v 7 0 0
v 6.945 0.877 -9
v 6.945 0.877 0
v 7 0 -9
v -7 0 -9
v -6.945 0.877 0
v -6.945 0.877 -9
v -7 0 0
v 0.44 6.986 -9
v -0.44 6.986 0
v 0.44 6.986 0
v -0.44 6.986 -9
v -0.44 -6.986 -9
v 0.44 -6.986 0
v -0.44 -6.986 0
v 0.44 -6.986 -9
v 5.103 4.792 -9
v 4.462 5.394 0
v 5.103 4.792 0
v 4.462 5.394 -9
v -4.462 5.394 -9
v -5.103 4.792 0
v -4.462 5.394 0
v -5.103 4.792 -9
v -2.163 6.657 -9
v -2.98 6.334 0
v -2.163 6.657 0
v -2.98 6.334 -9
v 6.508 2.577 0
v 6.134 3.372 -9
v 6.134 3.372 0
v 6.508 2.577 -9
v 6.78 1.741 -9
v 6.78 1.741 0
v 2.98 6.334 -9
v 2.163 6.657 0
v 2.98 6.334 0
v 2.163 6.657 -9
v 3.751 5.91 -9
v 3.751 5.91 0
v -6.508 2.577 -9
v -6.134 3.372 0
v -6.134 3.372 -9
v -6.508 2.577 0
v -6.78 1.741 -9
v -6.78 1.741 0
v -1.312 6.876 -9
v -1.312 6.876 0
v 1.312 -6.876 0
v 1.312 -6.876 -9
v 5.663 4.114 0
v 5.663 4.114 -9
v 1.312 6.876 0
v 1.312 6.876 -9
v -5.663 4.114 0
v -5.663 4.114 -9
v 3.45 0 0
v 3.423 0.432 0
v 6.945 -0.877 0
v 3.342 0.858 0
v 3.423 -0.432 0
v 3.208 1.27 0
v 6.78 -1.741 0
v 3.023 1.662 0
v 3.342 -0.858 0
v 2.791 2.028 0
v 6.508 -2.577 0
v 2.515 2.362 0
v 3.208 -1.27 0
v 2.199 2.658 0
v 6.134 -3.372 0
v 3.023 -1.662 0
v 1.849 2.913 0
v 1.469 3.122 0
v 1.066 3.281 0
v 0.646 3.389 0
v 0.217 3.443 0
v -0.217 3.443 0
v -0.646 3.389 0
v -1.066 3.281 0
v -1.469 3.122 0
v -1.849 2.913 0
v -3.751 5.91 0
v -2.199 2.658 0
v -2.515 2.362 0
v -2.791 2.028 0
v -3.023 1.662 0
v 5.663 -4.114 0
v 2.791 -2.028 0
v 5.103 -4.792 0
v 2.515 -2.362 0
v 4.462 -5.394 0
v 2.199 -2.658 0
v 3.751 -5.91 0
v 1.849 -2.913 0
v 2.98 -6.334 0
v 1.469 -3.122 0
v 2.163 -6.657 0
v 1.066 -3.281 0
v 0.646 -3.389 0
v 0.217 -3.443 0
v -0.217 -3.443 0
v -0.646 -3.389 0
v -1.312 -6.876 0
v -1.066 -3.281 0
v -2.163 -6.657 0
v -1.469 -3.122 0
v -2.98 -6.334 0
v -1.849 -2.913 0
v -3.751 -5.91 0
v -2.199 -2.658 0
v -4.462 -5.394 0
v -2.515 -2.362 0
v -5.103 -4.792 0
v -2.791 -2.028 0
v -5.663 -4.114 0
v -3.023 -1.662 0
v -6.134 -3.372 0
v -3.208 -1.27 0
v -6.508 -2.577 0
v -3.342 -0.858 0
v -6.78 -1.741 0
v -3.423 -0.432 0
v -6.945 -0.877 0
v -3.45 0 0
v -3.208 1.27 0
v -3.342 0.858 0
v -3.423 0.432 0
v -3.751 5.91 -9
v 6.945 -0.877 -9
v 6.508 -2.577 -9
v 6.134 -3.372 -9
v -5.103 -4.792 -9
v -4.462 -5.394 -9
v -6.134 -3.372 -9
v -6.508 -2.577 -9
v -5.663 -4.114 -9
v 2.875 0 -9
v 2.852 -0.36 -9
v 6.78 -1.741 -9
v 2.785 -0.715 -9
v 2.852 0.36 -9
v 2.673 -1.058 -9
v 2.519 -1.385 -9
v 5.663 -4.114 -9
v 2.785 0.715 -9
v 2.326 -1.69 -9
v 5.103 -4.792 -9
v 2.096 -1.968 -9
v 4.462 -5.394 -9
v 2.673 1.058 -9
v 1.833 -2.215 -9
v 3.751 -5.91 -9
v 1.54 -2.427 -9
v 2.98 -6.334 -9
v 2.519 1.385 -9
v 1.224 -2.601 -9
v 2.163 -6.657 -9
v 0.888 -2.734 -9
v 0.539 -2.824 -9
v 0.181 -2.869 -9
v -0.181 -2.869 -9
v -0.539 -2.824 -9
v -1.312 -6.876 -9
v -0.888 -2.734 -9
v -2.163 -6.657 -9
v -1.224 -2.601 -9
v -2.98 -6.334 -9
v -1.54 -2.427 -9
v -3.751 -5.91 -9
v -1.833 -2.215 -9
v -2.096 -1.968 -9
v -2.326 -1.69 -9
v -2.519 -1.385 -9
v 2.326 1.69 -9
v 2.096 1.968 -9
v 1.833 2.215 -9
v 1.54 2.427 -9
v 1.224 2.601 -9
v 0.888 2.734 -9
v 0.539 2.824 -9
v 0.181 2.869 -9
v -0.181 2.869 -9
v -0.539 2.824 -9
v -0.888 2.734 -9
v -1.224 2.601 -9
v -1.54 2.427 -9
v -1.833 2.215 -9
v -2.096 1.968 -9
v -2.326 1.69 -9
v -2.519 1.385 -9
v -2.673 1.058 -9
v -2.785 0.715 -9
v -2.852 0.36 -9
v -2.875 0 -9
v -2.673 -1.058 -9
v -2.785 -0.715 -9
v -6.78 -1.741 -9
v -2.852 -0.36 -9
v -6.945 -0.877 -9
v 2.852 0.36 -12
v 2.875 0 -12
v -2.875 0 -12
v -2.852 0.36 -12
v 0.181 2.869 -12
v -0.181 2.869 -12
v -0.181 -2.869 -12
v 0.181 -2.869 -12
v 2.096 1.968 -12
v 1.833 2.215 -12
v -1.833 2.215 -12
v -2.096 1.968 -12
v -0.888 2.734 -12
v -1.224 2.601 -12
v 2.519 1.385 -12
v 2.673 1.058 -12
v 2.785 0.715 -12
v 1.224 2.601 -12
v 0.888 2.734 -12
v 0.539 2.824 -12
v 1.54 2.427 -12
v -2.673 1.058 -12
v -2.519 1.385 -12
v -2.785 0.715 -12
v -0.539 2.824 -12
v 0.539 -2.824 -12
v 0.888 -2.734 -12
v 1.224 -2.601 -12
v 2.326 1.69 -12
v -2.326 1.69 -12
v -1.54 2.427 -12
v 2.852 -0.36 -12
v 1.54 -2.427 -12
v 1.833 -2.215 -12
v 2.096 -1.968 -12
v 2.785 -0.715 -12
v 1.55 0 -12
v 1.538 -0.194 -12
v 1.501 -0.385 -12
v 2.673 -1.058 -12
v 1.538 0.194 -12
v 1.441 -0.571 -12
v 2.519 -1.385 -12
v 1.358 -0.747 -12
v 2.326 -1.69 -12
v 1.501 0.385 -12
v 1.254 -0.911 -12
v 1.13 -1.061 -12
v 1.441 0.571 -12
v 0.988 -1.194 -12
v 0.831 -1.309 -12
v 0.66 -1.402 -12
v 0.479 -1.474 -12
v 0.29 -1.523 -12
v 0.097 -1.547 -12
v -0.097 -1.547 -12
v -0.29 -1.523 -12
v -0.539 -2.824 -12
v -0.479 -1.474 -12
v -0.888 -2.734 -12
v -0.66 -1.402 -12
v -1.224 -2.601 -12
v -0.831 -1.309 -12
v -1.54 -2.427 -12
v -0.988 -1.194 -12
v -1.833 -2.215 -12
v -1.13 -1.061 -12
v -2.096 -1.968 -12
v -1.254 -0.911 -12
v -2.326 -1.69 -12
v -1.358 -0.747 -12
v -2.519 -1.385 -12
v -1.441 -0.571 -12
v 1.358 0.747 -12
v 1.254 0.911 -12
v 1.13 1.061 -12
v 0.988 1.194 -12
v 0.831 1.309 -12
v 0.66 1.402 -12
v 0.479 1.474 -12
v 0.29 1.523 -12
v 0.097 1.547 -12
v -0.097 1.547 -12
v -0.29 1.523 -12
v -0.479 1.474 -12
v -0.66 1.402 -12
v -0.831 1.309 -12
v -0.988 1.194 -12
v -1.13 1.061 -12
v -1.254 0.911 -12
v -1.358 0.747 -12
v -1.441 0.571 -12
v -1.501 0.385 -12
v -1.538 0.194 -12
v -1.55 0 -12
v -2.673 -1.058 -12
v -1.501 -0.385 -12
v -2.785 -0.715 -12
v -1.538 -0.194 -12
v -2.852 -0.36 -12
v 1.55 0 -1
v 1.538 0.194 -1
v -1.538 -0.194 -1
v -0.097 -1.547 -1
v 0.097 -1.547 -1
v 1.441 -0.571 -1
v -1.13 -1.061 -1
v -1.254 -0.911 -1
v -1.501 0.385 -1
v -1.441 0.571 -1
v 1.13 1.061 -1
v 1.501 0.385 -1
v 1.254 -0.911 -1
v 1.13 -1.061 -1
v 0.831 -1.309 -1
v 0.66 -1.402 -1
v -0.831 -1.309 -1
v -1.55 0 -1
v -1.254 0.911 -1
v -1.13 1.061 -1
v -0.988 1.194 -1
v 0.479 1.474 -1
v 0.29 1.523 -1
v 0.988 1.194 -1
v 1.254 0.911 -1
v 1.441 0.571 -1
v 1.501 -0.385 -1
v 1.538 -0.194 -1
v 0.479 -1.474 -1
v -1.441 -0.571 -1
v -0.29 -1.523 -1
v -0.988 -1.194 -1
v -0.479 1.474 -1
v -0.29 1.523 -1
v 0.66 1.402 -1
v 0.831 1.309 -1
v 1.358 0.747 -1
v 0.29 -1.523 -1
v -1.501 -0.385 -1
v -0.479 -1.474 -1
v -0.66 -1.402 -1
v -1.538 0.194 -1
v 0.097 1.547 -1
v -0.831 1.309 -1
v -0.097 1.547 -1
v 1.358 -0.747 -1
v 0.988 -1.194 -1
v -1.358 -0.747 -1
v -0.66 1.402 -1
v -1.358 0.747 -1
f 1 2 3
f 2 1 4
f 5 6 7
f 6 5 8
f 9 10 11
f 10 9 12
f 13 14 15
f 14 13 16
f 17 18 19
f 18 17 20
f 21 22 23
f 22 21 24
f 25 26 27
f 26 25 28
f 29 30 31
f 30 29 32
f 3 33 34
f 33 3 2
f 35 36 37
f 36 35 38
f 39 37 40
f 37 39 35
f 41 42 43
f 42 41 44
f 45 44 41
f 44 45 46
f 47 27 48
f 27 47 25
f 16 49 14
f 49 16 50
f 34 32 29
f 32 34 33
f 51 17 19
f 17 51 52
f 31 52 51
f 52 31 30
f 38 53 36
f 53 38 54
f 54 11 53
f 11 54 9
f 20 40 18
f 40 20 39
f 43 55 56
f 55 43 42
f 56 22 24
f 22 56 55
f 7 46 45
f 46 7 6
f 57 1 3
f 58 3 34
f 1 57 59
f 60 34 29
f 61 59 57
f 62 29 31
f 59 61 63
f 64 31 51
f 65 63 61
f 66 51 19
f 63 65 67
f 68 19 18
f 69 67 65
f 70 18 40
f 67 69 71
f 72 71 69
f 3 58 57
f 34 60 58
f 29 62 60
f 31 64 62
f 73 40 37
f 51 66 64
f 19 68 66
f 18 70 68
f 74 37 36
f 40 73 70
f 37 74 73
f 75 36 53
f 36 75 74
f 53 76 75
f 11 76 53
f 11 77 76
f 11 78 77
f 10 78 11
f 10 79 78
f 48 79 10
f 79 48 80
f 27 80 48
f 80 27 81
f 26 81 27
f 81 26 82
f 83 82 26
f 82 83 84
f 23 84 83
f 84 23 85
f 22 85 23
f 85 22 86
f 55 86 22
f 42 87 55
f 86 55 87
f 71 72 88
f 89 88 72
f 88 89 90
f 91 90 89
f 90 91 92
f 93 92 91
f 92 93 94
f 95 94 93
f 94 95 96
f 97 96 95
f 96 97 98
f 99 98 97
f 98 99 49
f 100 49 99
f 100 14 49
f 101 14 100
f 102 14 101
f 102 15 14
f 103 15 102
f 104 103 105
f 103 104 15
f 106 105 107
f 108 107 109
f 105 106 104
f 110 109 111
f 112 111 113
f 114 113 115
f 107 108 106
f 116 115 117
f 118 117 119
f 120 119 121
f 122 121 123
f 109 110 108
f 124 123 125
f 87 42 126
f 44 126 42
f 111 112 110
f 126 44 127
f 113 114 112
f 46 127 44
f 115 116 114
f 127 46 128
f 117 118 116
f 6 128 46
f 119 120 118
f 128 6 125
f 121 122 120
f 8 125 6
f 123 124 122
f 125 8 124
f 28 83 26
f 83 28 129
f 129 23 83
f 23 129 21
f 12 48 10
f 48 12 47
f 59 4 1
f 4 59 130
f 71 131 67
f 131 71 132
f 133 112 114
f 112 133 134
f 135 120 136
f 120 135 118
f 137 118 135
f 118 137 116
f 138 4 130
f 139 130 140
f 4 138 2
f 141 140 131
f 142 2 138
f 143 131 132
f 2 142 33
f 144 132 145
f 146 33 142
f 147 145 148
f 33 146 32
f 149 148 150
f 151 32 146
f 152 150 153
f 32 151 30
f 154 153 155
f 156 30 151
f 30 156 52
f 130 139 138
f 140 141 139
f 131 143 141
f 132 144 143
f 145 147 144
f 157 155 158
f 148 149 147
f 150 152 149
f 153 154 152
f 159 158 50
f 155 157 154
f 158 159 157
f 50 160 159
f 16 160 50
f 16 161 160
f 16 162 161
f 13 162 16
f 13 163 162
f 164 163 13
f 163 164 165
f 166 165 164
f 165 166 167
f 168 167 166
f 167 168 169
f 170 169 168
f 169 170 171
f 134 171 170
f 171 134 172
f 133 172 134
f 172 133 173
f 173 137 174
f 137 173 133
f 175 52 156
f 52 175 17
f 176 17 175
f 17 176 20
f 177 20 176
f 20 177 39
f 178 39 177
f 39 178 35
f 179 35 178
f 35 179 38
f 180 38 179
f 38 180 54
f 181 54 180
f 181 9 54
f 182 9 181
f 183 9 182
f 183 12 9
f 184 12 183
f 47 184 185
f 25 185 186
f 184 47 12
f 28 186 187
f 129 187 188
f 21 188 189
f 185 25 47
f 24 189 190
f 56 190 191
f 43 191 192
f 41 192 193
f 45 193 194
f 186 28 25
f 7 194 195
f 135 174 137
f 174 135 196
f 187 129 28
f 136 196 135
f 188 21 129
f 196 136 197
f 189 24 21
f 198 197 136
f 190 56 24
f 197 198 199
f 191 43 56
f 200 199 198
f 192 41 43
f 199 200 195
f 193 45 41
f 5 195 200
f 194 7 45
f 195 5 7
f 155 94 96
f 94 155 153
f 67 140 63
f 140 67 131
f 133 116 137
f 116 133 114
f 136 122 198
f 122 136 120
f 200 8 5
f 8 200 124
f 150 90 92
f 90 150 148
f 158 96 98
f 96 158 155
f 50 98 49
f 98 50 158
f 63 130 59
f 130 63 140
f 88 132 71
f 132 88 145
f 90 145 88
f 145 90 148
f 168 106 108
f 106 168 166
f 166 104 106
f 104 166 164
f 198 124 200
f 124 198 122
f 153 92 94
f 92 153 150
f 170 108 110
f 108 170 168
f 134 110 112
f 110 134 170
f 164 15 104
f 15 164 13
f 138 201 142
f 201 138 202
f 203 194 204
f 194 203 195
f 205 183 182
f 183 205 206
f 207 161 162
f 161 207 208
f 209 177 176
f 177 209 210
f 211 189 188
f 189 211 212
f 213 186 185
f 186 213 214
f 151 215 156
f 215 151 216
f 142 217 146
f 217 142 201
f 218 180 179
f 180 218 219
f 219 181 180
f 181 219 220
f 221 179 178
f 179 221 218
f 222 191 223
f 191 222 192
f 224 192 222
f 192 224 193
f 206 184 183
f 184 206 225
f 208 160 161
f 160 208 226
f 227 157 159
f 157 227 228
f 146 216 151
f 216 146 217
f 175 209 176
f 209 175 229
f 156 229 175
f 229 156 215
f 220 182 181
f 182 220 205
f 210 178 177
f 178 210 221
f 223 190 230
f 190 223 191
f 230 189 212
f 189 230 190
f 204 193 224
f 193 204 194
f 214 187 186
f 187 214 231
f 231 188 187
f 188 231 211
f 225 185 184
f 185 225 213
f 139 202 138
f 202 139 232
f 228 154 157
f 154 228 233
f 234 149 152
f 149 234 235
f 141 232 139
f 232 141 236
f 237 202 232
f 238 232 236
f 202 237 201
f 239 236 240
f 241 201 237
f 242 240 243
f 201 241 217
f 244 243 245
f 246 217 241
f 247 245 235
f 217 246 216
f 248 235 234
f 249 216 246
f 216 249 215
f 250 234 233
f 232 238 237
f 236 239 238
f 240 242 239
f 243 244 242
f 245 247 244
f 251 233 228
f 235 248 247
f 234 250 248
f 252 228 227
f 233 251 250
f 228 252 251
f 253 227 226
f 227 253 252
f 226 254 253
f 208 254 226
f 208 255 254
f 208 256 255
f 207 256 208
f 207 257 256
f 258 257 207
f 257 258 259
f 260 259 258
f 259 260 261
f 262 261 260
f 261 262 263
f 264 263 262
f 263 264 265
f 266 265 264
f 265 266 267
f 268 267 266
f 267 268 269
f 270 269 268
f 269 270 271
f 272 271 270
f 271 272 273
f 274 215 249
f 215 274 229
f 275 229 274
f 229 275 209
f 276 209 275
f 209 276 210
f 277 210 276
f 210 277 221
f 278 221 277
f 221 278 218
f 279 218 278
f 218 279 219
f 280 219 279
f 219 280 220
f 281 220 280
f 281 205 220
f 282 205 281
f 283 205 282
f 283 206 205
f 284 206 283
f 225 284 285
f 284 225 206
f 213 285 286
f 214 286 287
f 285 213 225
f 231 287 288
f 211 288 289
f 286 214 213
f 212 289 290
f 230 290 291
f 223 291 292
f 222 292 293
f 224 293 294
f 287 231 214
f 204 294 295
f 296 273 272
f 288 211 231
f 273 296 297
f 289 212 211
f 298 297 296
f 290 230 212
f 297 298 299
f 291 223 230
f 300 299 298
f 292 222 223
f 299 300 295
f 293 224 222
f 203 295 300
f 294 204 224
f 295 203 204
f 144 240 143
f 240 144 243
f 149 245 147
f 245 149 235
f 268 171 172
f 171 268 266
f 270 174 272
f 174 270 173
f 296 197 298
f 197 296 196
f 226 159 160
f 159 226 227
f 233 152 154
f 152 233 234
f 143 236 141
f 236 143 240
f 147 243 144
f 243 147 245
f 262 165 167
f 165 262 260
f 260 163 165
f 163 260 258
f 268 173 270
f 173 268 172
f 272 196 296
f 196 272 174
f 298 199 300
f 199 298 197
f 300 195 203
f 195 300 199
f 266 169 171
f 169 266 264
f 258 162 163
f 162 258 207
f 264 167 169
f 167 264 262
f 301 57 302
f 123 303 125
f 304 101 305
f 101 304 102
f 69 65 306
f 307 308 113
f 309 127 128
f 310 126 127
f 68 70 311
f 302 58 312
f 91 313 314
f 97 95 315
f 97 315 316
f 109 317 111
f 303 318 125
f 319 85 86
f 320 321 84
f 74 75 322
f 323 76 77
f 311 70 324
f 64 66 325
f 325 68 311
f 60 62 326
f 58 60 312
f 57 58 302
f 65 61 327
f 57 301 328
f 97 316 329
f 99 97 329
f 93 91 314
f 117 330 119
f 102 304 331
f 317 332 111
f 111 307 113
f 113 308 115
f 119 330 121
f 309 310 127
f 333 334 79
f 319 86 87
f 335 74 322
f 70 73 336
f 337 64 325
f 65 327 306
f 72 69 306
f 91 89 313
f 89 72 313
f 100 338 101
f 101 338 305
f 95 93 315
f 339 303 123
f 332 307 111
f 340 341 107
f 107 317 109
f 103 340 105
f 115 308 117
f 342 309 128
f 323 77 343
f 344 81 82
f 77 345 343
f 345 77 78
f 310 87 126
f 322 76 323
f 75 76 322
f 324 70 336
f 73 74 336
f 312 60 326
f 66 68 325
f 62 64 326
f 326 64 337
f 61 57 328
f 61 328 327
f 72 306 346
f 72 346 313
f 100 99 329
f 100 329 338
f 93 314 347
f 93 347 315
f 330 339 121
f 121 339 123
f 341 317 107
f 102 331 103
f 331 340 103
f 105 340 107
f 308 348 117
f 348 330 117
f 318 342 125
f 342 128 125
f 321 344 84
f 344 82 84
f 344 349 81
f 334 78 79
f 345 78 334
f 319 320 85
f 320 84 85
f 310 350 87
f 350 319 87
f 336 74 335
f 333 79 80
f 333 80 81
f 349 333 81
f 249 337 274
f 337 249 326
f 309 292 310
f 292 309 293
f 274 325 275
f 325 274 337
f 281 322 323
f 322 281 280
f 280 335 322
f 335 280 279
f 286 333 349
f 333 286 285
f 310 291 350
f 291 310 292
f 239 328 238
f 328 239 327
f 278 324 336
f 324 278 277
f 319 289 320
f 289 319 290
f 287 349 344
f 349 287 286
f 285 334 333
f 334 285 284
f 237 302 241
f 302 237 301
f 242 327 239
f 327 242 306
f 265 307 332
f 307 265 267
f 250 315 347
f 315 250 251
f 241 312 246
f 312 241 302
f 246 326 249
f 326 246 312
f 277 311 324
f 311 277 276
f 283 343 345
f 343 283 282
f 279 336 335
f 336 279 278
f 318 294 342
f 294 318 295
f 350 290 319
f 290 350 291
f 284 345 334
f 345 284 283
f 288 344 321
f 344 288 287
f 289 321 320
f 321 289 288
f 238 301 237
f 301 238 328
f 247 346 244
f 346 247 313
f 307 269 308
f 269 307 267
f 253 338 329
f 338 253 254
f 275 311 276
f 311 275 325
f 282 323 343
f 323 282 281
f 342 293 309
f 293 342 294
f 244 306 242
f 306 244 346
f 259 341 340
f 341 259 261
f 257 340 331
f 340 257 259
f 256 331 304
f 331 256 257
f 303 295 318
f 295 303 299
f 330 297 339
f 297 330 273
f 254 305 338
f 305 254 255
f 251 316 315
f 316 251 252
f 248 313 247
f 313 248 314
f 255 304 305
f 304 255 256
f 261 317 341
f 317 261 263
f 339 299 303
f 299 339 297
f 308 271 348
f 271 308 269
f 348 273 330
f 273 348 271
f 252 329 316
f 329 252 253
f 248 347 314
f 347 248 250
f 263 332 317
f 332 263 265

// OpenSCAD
$fn = 50;


difference() {
	union() {
		translate(v = [0, 0, -9.0000000000]) {
			cylinder(h = 9, r = 7.0000000000);
		}
		translate(v = [0, 0, -12.0000000000]) {
			cylinder(h = 12, r = 2.8750000000);
		}
	}
	union() {
		translate(v = [0, 0, 0]) {
			rotate(a = [0, 0, 0]) {
				difference() {
					union() {
						translate(v = [0, 0, -12.0000000000]) {
							cylinder(h = 12, r = 1.2500000000);
						}
						translate(v = [0, 0, -1.0000000000]) {
							cylinder(h = 1.0000000000, r1 = 1.5500000000, r2 = 3.4500000000);
						}
						translate(v = [0, 0, -12.0000000000]) {
							cylinder(h = 12, r = 1.5500000000);
						}
						translate(v = [0, 0, -12.0000000000]) {
							cylinder(h = 12, r = 1.2500000000);
						}
					}
					union();
				}
			}
		}
	}
}
